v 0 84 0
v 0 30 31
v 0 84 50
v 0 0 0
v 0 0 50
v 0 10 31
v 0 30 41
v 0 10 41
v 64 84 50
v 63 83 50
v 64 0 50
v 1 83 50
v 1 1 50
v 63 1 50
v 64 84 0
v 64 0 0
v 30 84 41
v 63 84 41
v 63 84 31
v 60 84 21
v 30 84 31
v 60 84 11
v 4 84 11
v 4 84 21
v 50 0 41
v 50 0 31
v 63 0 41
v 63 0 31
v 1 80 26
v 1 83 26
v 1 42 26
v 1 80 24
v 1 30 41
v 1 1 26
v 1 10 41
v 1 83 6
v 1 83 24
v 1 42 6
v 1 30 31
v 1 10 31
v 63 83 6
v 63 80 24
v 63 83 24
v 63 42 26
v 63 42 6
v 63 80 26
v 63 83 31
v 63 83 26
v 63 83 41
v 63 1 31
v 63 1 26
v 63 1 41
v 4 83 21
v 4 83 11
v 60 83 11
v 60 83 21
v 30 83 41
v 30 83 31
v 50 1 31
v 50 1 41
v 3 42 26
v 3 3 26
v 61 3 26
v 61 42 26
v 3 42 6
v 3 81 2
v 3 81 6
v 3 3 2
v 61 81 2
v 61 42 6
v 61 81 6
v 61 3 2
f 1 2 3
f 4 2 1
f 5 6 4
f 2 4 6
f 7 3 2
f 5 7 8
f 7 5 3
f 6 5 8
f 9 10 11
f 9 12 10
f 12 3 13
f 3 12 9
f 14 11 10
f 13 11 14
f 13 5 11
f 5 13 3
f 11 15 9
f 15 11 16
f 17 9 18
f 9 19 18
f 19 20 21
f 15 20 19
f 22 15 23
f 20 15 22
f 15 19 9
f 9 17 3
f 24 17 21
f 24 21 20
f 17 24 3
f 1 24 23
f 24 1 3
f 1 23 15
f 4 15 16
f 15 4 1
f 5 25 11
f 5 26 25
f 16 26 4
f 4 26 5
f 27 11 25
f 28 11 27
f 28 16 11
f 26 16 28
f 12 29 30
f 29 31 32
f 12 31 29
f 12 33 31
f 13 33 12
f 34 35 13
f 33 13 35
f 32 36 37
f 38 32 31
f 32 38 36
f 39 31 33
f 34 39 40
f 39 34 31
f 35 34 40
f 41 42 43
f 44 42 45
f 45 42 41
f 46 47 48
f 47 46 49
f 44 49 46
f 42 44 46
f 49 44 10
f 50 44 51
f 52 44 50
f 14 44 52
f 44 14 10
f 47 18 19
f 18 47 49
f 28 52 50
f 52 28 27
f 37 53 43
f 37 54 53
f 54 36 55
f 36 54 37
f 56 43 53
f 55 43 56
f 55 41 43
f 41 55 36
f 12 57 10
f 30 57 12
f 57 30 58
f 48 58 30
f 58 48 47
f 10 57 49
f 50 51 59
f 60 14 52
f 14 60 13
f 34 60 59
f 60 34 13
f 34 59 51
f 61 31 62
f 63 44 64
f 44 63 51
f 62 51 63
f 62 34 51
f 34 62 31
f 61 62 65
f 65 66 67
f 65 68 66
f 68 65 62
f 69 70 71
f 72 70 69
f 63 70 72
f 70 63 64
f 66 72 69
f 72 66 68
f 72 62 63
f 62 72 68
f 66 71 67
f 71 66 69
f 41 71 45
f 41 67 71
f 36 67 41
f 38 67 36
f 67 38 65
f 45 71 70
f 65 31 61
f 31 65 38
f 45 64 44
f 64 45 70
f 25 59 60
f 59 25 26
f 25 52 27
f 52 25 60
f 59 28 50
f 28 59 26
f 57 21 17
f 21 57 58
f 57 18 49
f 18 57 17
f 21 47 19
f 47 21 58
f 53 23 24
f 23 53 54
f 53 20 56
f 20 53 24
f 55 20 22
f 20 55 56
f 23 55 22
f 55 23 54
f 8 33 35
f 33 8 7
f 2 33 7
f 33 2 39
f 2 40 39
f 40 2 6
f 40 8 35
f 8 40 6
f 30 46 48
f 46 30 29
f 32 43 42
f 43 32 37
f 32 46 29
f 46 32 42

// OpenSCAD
union(){
    difference(){
        union(){
            difference(){
                cube([64,84,50]);
                translate([1,1,1]){
                    cube([62,82,50]);
                }
            }
            difference(){
                translate([1,1,1]){
                    cube([62,82,25]);
                }
                translate([3,3,2]){
                    cube([58,78,25]);
                }
                translate([1,42,6]){
                    cube([62,42,20]);
                }
            }
        }
        translate([50,0,31]){
            cube([13,2,10]);
        }
        translate([30,83,31]){
            cube([33,2,10]);
        }
        translate([4,83,11]){
            cube([56,2,10]);
        }
        translate([0,10,31]){
            cube([2,20,10]);
        }
    }
    translate([1,80,24]){
        cube([62,4,2]);
    }
}
